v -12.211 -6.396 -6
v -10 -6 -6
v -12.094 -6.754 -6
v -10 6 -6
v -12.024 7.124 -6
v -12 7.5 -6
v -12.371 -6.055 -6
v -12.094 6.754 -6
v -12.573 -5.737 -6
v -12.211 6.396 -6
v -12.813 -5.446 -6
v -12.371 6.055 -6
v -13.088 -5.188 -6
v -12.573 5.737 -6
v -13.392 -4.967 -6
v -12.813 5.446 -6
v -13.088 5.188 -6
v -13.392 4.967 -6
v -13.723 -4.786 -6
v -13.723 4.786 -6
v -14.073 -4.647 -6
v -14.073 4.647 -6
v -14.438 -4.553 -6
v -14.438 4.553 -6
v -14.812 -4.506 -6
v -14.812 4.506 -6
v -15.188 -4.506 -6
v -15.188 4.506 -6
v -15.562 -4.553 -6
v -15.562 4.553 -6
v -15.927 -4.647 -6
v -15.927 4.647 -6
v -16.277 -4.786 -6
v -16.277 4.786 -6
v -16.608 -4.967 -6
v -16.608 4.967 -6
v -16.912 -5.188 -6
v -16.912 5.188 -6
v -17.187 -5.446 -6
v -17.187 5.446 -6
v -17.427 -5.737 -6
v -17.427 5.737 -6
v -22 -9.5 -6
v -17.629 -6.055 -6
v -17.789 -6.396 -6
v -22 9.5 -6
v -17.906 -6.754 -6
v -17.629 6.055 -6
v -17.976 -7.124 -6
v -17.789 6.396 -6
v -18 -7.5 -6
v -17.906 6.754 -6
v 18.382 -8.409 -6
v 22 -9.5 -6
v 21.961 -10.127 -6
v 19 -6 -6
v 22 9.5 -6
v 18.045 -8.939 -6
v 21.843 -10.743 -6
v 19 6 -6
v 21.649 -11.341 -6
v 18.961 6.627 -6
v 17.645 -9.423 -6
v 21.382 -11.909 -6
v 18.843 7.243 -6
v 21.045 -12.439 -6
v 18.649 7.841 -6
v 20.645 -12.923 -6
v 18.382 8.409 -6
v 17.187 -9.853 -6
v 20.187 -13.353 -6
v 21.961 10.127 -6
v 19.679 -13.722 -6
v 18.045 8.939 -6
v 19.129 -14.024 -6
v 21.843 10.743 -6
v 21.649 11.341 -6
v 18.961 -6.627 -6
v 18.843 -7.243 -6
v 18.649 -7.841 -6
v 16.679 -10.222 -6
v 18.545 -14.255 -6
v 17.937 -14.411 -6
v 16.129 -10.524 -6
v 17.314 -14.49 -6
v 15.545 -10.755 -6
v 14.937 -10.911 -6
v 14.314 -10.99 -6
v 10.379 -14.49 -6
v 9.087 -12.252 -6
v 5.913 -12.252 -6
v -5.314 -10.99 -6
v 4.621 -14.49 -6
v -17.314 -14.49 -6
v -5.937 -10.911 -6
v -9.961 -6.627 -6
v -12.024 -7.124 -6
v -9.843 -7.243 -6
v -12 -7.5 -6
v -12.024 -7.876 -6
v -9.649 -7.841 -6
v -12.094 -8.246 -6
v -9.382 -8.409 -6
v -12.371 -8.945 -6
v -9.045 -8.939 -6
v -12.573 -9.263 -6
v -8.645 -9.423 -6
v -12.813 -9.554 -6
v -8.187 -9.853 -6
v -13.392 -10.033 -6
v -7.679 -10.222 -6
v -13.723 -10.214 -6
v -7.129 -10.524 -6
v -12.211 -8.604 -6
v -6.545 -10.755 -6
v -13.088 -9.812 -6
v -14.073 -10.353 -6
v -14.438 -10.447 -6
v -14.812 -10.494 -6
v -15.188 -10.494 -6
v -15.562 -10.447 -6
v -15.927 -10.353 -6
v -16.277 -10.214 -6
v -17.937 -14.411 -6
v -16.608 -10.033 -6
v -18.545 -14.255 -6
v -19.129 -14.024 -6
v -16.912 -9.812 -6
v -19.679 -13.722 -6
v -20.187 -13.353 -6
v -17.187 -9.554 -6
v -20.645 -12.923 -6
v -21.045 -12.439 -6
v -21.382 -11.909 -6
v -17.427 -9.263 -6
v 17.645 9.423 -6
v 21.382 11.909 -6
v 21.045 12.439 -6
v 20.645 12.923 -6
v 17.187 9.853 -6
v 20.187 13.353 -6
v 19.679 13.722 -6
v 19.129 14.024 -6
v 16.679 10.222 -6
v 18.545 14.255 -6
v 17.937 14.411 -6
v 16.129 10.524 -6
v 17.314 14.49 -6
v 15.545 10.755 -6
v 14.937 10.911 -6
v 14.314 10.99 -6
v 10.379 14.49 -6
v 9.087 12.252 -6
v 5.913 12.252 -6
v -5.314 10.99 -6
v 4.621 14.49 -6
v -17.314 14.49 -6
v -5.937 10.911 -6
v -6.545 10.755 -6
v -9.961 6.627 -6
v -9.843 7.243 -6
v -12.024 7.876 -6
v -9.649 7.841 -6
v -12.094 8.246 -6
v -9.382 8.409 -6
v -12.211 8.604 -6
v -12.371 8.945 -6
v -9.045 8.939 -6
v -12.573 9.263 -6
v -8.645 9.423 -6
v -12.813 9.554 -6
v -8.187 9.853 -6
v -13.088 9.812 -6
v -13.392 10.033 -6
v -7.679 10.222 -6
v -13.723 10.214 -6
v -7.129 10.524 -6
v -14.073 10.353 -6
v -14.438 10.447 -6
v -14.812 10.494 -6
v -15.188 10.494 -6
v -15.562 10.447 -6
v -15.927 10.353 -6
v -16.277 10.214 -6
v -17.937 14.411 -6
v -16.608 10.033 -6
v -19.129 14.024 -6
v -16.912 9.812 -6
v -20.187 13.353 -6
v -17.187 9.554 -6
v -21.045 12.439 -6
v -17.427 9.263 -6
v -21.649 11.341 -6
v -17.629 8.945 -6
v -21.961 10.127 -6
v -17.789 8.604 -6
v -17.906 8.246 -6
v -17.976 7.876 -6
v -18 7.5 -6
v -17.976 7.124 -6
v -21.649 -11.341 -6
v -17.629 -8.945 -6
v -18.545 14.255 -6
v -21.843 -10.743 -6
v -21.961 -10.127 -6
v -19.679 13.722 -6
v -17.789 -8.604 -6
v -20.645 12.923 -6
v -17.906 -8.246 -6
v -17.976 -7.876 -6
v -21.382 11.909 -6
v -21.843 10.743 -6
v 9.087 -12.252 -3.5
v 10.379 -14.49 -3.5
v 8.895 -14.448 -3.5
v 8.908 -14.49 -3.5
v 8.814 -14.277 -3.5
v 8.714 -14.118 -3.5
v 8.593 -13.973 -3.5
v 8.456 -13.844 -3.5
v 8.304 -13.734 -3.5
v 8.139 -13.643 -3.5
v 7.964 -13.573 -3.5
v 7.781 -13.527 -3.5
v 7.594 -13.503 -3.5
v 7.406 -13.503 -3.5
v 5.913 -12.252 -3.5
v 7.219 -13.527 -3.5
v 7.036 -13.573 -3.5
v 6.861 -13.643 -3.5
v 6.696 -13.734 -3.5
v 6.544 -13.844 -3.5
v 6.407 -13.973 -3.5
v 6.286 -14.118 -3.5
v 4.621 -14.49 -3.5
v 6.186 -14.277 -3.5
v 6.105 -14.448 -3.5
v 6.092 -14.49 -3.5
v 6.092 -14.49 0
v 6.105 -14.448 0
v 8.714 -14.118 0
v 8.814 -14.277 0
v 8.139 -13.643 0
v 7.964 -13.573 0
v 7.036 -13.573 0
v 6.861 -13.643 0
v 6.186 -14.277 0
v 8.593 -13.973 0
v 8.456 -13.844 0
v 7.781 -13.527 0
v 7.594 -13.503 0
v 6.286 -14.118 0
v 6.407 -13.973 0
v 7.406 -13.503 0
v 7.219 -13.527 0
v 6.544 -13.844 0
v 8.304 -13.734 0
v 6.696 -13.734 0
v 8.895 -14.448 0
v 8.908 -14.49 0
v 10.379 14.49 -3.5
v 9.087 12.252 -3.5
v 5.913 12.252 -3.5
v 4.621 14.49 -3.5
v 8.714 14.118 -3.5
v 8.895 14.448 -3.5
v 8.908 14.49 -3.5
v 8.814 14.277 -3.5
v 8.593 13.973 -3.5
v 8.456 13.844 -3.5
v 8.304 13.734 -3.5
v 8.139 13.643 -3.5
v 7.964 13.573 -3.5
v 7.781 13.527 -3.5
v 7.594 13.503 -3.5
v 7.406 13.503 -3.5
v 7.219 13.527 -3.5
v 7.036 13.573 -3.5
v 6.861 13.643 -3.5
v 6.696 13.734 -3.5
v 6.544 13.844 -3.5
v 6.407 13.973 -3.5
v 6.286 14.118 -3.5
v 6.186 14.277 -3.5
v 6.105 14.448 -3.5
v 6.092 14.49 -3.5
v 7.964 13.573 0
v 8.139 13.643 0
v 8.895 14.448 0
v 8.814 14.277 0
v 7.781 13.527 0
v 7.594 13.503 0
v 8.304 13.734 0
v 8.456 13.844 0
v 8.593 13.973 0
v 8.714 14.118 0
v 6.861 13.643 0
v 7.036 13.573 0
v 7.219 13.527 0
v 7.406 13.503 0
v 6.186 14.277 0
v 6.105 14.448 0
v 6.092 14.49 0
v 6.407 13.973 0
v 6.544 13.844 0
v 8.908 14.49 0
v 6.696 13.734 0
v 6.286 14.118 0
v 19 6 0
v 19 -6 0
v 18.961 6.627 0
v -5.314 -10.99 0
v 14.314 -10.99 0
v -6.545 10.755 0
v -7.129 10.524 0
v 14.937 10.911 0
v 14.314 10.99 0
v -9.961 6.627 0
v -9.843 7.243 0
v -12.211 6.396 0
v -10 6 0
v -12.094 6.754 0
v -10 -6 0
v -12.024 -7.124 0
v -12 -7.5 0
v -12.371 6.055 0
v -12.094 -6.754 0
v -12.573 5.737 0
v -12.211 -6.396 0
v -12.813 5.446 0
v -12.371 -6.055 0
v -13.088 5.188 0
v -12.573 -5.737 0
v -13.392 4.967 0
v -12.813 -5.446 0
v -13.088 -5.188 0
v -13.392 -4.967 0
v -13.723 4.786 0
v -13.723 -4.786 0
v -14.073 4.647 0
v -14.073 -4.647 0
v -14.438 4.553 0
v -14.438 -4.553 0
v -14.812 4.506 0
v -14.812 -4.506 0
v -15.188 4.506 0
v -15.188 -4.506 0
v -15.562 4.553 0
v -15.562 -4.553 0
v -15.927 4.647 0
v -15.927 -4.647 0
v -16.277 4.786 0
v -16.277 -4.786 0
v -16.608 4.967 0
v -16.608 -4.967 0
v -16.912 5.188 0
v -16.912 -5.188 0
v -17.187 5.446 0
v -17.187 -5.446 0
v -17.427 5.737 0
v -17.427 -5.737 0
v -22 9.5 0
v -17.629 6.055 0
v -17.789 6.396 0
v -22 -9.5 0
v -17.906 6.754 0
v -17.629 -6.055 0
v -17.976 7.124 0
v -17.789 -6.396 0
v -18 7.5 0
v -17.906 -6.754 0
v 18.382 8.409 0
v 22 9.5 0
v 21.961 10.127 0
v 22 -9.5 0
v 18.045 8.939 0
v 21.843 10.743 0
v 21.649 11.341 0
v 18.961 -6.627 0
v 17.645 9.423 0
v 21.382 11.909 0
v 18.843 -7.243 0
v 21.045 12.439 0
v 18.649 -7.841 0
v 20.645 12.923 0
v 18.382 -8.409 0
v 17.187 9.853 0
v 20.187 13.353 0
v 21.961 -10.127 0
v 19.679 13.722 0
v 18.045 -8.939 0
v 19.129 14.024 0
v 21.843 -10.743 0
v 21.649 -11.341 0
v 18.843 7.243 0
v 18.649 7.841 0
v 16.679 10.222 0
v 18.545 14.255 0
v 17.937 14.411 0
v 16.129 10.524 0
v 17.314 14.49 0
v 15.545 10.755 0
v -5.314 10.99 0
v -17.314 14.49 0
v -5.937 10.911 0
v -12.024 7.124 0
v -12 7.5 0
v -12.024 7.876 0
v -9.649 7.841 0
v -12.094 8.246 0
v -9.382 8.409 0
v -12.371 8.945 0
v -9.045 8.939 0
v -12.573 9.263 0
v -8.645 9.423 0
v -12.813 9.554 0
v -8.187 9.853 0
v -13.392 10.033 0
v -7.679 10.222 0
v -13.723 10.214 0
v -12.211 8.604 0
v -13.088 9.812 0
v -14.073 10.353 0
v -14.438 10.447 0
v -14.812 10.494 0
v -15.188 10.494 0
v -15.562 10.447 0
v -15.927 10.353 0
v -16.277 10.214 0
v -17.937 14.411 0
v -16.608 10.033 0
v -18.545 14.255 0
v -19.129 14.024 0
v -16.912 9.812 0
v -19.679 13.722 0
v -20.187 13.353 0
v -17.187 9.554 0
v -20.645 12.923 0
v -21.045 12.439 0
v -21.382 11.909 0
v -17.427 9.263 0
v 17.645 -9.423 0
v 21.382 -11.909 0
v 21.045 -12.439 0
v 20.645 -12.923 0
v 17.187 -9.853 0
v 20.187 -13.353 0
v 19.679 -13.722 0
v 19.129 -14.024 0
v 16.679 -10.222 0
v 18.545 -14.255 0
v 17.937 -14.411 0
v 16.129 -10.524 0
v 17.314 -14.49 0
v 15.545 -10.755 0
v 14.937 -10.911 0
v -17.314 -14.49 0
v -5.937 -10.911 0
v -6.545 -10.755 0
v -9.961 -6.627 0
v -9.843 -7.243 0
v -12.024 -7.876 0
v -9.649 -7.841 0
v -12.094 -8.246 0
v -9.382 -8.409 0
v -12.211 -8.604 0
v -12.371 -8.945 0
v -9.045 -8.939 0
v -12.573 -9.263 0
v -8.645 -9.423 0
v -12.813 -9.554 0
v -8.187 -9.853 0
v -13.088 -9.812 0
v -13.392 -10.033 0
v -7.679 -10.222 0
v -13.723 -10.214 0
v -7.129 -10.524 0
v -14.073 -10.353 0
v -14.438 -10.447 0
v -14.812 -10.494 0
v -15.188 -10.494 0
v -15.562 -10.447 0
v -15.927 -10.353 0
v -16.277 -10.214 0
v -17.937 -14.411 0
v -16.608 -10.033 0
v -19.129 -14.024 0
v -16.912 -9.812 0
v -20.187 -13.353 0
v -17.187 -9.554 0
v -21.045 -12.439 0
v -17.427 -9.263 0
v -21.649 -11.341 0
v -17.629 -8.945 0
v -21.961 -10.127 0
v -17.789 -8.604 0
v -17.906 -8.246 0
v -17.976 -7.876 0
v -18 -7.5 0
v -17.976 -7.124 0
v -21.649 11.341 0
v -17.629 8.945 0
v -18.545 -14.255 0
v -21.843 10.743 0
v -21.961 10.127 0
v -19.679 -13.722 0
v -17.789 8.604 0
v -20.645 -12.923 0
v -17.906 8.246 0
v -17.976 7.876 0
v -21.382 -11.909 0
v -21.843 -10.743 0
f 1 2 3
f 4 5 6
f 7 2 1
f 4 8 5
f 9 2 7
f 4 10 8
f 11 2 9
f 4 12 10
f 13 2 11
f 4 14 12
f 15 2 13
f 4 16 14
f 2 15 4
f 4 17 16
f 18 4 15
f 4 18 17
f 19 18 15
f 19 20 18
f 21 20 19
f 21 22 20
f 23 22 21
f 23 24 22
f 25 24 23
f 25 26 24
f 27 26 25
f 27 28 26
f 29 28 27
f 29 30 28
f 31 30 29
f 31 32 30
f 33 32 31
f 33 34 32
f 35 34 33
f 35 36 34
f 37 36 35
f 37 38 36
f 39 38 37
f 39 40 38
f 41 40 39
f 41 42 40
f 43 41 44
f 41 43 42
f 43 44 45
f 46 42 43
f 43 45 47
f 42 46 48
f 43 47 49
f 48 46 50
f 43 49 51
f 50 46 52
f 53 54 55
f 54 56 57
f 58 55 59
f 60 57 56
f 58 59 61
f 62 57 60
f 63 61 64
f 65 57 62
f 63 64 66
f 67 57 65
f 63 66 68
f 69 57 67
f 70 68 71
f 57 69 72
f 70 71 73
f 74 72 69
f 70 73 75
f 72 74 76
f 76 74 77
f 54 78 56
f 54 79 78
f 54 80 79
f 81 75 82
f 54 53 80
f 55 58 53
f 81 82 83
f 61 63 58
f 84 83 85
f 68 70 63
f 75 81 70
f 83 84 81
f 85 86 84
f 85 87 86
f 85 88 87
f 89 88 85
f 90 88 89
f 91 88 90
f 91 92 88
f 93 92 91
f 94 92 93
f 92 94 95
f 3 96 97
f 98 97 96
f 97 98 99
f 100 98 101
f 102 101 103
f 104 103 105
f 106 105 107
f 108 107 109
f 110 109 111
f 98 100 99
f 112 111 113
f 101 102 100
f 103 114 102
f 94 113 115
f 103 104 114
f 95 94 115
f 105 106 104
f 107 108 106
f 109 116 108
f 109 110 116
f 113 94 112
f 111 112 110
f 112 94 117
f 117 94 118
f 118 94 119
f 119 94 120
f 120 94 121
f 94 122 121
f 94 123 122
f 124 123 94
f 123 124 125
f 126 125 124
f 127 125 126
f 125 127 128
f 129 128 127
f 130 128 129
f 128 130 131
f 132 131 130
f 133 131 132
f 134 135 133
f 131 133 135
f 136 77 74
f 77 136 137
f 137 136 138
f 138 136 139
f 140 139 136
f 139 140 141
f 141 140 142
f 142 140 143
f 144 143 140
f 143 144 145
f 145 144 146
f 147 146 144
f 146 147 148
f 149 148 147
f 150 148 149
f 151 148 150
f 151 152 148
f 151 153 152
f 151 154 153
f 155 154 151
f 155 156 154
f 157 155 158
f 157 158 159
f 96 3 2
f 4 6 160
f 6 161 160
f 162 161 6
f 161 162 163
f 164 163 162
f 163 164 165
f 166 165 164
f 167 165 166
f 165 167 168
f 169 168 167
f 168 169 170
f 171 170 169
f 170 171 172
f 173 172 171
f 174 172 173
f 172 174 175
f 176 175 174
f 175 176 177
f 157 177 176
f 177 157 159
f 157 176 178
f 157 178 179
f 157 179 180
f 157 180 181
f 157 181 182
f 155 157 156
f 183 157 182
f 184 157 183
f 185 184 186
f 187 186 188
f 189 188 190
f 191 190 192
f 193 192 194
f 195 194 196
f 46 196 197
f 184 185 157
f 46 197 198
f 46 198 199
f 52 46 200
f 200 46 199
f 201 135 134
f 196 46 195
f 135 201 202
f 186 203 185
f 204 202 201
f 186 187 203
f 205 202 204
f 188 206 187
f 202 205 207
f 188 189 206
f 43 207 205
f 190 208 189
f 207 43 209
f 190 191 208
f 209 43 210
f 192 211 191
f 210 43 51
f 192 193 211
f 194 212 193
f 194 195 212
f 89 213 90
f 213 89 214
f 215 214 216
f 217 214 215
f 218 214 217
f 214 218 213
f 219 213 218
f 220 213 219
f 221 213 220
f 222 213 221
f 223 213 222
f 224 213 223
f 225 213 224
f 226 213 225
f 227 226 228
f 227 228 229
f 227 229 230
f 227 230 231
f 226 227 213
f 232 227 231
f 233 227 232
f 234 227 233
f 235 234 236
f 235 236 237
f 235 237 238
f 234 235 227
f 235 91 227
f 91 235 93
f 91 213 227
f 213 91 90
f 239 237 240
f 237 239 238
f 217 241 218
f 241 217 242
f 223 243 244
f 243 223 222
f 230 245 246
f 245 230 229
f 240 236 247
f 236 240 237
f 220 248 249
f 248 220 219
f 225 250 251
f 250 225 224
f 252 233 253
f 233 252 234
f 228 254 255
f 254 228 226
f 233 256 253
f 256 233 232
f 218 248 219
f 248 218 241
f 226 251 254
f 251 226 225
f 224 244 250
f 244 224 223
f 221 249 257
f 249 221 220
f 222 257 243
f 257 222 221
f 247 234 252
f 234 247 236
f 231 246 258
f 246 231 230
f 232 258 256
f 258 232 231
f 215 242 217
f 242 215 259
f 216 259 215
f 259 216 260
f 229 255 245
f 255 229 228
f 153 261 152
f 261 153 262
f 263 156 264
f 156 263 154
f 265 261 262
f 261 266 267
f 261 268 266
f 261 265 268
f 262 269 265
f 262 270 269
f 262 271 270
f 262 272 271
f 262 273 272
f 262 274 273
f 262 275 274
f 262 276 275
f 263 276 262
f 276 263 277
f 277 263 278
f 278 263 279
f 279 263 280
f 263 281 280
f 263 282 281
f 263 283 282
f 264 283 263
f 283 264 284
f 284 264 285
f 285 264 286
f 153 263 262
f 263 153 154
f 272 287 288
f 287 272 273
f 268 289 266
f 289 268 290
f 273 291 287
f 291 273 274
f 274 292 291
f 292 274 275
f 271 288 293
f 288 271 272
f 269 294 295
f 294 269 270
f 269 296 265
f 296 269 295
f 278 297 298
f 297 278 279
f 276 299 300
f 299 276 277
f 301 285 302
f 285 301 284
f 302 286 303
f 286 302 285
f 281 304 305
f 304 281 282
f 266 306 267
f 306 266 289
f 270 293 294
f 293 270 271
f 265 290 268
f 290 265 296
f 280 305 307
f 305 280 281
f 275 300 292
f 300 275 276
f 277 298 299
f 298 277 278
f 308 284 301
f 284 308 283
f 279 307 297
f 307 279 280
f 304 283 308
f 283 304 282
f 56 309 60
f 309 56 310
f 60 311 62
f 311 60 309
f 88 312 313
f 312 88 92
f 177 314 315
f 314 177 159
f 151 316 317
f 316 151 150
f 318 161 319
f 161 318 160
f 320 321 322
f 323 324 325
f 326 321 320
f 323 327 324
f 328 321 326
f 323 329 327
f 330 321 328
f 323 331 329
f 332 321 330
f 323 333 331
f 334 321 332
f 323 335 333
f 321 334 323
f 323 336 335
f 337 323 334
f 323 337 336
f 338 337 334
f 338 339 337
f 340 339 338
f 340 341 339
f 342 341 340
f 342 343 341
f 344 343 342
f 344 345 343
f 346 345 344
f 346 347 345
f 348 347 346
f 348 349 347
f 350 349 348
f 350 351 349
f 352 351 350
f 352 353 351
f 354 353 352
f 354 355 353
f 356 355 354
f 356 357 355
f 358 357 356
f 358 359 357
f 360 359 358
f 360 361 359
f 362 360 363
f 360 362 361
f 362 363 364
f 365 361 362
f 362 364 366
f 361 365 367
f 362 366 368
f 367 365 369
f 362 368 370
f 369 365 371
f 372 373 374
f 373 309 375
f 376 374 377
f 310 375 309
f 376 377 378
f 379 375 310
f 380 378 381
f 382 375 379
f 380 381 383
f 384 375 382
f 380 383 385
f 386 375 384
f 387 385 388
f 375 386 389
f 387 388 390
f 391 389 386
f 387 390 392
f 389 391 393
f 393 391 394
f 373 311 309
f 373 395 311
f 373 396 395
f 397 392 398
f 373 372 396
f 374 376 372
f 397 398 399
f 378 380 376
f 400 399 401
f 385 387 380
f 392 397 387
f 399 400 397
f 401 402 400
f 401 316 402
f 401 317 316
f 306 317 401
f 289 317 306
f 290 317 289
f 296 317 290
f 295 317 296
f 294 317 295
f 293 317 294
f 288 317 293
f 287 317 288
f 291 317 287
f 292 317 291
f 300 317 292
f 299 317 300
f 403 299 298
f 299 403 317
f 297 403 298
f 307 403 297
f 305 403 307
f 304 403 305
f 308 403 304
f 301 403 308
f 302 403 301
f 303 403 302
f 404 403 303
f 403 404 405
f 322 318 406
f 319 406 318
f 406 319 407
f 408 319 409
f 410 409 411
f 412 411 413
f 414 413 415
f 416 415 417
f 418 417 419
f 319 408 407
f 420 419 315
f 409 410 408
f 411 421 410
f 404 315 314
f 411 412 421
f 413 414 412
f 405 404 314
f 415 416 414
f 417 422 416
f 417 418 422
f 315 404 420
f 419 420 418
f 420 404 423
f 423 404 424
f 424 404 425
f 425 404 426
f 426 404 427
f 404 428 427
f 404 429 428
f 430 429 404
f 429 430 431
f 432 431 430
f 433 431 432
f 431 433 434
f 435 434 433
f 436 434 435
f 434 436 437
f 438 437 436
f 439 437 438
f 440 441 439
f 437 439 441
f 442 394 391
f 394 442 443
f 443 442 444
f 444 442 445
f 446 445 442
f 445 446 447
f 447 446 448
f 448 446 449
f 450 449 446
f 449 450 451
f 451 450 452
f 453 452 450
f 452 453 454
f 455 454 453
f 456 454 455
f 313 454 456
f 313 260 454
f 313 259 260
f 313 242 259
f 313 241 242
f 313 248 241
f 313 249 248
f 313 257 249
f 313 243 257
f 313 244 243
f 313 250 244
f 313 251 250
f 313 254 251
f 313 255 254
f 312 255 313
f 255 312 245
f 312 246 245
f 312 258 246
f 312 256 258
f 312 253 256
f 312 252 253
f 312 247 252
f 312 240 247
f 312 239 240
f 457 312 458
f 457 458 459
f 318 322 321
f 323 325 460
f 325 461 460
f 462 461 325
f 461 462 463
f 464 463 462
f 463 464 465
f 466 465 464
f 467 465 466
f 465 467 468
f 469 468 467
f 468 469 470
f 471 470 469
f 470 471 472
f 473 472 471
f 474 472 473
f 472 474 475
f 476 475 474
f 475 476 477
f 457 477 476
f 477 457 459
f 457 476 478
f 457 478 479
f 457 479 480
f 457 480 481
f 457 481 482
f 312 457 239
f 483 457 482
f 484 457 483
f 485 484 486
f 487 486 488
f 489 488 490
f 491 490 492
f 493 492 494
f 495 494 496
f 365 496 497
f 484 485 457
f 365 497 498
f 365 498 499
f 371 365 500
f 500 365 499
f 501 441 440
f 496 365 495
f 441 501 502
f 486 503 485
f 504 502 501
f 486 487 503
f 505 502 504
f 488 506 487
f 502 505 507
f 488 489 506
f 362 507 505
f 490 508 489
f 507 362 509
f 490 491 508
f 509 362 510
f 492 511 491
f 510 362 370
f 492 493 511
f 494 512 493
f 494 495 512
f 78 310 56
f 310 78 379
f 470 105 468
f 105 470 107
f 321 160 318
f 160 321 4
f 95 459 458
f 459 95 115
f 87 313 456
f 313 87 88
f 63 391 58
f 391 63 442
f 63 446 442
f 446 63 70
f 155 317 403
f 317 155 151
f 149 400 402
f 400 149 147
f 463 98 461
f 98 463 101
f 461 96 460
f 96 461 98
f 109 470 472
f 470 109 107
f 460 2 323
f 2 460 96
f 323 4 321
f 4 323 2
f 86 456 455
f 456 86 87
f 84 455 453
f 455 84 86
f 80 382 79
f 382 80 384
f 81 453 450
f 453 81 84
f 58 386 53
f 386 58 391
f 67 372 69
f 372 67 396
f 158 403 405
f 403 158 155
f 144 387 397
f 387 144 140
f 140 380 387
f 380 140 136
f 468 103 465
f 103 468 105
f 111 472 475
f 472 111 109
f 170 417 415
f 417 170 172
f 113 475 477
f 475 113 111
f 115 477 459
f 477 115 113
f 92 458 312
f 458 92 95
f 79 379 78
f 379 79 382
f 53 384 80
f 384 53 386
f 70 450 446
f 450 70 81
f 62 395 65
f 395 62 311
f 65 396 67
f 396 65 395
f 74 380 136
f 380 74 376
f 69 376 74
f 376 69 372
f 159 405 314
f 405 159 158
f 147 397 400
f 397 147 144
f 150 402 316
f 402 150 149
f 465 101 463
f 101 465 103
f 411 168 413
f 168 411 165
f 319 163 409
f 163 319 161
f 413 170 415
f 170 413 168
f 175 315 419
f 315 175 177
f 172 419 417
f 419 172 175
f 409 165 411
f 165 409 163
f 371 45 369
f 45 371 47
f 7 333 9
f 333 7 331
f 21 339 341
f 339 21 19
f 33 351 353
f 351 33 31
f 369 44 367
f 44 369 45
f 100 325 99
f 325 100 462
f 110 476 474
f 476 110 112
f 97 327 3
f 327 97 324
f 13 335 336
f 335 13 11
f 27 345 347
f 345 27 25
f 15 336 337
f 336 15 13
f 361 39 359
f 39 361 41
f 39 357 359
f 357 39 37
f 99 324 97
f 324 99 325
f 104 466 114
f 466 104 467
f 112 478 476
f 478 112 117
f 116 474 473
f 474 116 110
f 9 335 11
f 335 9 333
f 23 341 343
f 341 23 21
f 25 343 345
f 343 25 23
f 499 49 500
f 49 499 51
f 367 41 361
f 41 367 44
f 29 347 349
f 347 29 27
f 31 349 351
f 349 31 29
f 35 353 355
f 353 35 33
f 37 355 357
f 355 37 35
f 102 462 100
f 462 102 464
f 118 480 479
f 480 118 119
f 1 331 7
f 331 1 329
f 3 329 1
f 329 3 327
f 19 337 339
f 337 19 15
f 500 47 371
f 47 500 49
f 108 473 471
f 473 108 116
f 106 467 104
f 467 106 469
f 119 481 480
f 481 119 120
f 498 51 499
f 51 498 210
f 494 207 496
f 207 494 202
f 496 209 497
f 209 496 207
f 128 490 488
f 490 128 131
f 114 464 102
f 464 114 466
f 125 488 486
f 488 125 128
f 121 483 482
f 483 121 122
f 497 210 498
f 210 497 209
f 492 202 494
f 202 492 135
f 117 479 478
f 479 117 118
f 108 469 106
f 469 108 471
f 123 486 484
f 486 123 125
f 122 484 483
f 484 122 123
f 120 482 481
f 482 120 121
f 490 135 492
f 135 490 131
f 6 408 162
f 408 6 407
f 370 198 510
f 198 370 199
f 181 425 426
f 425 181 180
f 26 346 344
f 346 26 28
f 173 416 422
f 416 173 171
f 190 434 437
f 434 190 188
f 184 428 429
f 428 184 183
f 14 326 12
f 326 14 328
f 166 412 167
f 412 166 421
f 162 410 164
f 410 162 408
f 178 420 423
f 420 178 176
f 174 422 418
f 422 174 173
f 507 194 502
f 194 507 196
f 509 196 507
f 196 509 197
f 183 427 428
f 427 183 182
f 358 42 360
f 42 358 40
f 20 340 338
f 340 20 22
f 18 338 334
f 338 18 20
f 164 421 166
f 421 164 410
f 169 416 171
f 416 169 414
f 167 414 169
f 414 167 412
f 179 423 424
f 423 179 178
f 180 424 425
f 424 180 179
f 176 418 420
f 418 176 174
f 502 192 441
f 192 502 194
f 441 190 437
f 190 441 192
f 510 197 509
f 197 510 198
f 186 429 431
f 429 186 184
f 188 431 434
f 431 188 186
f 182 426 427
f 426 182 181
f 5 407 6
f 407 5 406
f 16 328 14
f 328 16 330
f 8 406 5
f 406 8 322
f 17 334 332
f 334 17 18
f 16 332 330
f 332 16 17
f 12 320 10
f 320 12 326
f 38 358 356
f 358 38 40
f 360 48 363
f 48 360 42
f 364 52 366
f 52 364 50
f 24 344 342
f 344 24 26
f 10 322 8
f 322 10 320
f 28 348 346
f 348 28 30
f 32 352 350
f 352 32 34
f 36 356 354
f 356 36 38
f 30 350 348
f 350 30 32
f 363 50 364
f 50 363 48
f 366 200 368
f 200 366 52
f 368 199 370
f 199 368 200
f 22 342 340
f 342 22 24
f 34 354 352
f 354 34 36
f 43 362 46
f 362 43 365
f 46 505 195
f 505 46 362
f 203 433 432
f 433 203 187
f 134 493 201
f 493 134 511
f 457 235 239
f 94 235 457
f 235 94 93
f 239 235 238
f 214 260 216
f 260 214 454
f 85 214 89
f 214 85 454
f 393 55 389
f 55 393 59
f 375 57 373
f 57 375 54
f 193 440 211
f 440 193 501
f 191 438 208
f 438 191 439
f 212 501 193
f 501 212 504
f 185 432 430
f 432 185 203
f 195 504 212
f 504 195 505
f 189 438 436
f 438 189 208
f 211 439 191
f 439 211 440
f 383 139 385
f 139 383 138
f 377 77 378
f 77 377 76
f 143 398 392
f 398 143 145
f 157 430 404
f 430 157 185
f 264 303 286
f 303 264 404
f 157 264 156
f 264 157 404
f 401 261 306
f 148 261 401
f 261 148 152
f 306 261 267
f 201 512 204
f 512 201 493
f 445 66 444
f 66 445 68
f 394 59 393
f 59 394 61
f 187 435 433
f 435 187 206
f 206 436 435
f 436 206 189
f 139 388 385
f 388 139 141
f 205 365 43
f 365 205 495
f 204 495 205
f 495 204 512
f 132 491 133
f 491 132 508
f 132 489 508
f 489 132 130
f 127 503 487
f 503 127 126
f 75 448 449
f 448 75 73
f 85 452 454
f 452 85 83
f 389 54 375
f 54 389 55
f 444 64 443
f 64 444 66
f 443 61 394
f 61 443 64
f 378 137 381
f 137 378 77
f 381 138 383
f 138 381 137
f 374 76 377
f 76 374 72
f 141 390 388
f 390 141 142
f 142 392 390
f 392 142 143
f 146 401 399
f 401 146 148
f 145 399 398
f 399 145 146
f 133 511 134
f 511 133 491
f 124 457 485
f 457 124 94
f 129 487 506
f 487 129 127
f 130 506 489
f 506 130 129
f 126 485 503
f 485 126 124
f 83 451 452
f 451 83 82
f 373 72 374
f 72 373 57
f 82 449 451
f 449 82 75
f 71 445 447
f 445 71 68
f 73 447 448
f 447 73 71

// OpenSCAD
$fn = 50;


difference() {
	union() {
		translate(v = [0, 0, -6]) {
			hull() {
				translate(v = [-17.0000000000, 9.5000000000, 0]) {
					cylinder(h = 6, r = 5);
				}
				translate(v = [17.0000000000, 9.5000000000, 0]) {
					cylinder(h = 6, r = 5);
				}
				translate(v = [-17.0000000000, -9.5000000000, 0]) {
					cylinder(h = 6, r = 5);
				}
				translate(v = [17.0000000000, -9.5000000000, 0]) {
					cylinder(h = 6, r = 5);
				}
			}
		}
	}
	union() {
		translate(v = [7.5000000000, -15, -6]) {
			rotate(a = [0, 0, 0]) {
				difference() {
					union() {
						linear_extrude(height = 2.5000000000) {
							polygon(points = [[3.1735000000, 0.0000000000], [1.5867500000, 2.7483316189], [-1.5867500000, 2.7483316189], [-3.1735000000, 0.0000000000], [-1.5867500000, -2.7483316189], [1.5867500000, -2.7483316189]]);
						}
						translate(v = [0, 0, -50.0000000000]) {
							cylinder(h = 100, r = 1.5000000000);
						}
						translate(v = [0, 0, -50.0000000000]) {
							cylinder(h = 100, r = 1.5000000000);
						}
						translate(v = [0, 0, -50.0000000000]) {
							cylinder(h = 100, r = 1.5000000000);
						}
					}
					union();
				}
			}
		}
		translate(v = [7.5000000000, 15, -6]) {
			rotate(a = [0, 0, 0]) {
				difference() {
					union() {
						linear_extrude(height = 2.5000000000) {
							polygon(points = [[3.1735000000, 0.0000000000], [1.5867500000, 2.7483316189], [-1.5867500000, 2.7483316189], [-3.1735000000, 0.0000000000], [-1.5867500000, -2.7483316189], [1.5867500000, -2.7483316189]]);
						}
						translate(v = [0, 0, -50.0000000000]) {
							cylinder(h = 100, r = 1.5000000000);
						}
						translate(v = [0, 0, -50.0000000000]) {
							cylinder(h = 100, r = 1.5000000000);
						}
						translate(v = [0, 0, -50.0000000000]) {
							cylinder(h = 100, r = 1.5000000000);
						}
					}
					union();
				}
			}
		}
		translate(v = [0, 0, -3]) {
			rotate(a = [0, 0, 180]) {
				difference() {
					union() {
						translate(v = [-4.5000000000, 0, -3]) {
							#hull() {
								translate(v = [-9.5000000000, 6.0000000000, 0]) {
									cylinder(h = 6, r = 5);
								}
								translate(v = [9.5000000000, 6.0000000000, 0]) {
									cylinder(h = 6, r = 5);
								}
								translate(v = [-9.5000000000, -6.0000000000, 0]) {
									cylinder(h = 6, r = 5);
								}
								translate(v = [9.5000000000, -6.0000000000, 0]) {
									cylinder(h = 6, r = 5);
								}
							}
						}
					}
					union();
				}
			}
		}
		translate(v = [-15.0000000000, -7.5000000000, -50.0000000000]) {
			cylinder(h = 100, r = 3.0000000000);
		}
		translate(v = [-15.0000000000, 7.5000000000, -50.0000000000]) {
			cylinder(h = 100, r = 3.0000000000);
		}
		translate(v = [-15.0000000000, 7.5000000000, -50.0000000000]) {
			cylinder(h = 100, r = 3.0000000000);
		}
		translate(v = [0.0000000000, 7.5000000000, -50.0000000000]) {
			cylinder(h = 100, r = 3.0000000000);
		}
		translate(v = [15.0000000000, 7.5000000000, -50.0000000000]) {
			cylinder(h = 100, r = 3.0000000000);
		}
		translate(v = [-15.0000000000, -7.5000000000, -50.0000000000]) {
			cylinder(h = 100, r = 3.0000000000);
		}
		translate(v = [0.0000000000, -7.5000000000, -50.0000000000]) {
			cylinder(h = 100, r = 3.0000000000);
		}
		translate(v = [15.0000000000, -7.5000000000, -50.0000000000]) {
			cylinder(h = 100, r = 3.0000000000);
		}
	}
}
